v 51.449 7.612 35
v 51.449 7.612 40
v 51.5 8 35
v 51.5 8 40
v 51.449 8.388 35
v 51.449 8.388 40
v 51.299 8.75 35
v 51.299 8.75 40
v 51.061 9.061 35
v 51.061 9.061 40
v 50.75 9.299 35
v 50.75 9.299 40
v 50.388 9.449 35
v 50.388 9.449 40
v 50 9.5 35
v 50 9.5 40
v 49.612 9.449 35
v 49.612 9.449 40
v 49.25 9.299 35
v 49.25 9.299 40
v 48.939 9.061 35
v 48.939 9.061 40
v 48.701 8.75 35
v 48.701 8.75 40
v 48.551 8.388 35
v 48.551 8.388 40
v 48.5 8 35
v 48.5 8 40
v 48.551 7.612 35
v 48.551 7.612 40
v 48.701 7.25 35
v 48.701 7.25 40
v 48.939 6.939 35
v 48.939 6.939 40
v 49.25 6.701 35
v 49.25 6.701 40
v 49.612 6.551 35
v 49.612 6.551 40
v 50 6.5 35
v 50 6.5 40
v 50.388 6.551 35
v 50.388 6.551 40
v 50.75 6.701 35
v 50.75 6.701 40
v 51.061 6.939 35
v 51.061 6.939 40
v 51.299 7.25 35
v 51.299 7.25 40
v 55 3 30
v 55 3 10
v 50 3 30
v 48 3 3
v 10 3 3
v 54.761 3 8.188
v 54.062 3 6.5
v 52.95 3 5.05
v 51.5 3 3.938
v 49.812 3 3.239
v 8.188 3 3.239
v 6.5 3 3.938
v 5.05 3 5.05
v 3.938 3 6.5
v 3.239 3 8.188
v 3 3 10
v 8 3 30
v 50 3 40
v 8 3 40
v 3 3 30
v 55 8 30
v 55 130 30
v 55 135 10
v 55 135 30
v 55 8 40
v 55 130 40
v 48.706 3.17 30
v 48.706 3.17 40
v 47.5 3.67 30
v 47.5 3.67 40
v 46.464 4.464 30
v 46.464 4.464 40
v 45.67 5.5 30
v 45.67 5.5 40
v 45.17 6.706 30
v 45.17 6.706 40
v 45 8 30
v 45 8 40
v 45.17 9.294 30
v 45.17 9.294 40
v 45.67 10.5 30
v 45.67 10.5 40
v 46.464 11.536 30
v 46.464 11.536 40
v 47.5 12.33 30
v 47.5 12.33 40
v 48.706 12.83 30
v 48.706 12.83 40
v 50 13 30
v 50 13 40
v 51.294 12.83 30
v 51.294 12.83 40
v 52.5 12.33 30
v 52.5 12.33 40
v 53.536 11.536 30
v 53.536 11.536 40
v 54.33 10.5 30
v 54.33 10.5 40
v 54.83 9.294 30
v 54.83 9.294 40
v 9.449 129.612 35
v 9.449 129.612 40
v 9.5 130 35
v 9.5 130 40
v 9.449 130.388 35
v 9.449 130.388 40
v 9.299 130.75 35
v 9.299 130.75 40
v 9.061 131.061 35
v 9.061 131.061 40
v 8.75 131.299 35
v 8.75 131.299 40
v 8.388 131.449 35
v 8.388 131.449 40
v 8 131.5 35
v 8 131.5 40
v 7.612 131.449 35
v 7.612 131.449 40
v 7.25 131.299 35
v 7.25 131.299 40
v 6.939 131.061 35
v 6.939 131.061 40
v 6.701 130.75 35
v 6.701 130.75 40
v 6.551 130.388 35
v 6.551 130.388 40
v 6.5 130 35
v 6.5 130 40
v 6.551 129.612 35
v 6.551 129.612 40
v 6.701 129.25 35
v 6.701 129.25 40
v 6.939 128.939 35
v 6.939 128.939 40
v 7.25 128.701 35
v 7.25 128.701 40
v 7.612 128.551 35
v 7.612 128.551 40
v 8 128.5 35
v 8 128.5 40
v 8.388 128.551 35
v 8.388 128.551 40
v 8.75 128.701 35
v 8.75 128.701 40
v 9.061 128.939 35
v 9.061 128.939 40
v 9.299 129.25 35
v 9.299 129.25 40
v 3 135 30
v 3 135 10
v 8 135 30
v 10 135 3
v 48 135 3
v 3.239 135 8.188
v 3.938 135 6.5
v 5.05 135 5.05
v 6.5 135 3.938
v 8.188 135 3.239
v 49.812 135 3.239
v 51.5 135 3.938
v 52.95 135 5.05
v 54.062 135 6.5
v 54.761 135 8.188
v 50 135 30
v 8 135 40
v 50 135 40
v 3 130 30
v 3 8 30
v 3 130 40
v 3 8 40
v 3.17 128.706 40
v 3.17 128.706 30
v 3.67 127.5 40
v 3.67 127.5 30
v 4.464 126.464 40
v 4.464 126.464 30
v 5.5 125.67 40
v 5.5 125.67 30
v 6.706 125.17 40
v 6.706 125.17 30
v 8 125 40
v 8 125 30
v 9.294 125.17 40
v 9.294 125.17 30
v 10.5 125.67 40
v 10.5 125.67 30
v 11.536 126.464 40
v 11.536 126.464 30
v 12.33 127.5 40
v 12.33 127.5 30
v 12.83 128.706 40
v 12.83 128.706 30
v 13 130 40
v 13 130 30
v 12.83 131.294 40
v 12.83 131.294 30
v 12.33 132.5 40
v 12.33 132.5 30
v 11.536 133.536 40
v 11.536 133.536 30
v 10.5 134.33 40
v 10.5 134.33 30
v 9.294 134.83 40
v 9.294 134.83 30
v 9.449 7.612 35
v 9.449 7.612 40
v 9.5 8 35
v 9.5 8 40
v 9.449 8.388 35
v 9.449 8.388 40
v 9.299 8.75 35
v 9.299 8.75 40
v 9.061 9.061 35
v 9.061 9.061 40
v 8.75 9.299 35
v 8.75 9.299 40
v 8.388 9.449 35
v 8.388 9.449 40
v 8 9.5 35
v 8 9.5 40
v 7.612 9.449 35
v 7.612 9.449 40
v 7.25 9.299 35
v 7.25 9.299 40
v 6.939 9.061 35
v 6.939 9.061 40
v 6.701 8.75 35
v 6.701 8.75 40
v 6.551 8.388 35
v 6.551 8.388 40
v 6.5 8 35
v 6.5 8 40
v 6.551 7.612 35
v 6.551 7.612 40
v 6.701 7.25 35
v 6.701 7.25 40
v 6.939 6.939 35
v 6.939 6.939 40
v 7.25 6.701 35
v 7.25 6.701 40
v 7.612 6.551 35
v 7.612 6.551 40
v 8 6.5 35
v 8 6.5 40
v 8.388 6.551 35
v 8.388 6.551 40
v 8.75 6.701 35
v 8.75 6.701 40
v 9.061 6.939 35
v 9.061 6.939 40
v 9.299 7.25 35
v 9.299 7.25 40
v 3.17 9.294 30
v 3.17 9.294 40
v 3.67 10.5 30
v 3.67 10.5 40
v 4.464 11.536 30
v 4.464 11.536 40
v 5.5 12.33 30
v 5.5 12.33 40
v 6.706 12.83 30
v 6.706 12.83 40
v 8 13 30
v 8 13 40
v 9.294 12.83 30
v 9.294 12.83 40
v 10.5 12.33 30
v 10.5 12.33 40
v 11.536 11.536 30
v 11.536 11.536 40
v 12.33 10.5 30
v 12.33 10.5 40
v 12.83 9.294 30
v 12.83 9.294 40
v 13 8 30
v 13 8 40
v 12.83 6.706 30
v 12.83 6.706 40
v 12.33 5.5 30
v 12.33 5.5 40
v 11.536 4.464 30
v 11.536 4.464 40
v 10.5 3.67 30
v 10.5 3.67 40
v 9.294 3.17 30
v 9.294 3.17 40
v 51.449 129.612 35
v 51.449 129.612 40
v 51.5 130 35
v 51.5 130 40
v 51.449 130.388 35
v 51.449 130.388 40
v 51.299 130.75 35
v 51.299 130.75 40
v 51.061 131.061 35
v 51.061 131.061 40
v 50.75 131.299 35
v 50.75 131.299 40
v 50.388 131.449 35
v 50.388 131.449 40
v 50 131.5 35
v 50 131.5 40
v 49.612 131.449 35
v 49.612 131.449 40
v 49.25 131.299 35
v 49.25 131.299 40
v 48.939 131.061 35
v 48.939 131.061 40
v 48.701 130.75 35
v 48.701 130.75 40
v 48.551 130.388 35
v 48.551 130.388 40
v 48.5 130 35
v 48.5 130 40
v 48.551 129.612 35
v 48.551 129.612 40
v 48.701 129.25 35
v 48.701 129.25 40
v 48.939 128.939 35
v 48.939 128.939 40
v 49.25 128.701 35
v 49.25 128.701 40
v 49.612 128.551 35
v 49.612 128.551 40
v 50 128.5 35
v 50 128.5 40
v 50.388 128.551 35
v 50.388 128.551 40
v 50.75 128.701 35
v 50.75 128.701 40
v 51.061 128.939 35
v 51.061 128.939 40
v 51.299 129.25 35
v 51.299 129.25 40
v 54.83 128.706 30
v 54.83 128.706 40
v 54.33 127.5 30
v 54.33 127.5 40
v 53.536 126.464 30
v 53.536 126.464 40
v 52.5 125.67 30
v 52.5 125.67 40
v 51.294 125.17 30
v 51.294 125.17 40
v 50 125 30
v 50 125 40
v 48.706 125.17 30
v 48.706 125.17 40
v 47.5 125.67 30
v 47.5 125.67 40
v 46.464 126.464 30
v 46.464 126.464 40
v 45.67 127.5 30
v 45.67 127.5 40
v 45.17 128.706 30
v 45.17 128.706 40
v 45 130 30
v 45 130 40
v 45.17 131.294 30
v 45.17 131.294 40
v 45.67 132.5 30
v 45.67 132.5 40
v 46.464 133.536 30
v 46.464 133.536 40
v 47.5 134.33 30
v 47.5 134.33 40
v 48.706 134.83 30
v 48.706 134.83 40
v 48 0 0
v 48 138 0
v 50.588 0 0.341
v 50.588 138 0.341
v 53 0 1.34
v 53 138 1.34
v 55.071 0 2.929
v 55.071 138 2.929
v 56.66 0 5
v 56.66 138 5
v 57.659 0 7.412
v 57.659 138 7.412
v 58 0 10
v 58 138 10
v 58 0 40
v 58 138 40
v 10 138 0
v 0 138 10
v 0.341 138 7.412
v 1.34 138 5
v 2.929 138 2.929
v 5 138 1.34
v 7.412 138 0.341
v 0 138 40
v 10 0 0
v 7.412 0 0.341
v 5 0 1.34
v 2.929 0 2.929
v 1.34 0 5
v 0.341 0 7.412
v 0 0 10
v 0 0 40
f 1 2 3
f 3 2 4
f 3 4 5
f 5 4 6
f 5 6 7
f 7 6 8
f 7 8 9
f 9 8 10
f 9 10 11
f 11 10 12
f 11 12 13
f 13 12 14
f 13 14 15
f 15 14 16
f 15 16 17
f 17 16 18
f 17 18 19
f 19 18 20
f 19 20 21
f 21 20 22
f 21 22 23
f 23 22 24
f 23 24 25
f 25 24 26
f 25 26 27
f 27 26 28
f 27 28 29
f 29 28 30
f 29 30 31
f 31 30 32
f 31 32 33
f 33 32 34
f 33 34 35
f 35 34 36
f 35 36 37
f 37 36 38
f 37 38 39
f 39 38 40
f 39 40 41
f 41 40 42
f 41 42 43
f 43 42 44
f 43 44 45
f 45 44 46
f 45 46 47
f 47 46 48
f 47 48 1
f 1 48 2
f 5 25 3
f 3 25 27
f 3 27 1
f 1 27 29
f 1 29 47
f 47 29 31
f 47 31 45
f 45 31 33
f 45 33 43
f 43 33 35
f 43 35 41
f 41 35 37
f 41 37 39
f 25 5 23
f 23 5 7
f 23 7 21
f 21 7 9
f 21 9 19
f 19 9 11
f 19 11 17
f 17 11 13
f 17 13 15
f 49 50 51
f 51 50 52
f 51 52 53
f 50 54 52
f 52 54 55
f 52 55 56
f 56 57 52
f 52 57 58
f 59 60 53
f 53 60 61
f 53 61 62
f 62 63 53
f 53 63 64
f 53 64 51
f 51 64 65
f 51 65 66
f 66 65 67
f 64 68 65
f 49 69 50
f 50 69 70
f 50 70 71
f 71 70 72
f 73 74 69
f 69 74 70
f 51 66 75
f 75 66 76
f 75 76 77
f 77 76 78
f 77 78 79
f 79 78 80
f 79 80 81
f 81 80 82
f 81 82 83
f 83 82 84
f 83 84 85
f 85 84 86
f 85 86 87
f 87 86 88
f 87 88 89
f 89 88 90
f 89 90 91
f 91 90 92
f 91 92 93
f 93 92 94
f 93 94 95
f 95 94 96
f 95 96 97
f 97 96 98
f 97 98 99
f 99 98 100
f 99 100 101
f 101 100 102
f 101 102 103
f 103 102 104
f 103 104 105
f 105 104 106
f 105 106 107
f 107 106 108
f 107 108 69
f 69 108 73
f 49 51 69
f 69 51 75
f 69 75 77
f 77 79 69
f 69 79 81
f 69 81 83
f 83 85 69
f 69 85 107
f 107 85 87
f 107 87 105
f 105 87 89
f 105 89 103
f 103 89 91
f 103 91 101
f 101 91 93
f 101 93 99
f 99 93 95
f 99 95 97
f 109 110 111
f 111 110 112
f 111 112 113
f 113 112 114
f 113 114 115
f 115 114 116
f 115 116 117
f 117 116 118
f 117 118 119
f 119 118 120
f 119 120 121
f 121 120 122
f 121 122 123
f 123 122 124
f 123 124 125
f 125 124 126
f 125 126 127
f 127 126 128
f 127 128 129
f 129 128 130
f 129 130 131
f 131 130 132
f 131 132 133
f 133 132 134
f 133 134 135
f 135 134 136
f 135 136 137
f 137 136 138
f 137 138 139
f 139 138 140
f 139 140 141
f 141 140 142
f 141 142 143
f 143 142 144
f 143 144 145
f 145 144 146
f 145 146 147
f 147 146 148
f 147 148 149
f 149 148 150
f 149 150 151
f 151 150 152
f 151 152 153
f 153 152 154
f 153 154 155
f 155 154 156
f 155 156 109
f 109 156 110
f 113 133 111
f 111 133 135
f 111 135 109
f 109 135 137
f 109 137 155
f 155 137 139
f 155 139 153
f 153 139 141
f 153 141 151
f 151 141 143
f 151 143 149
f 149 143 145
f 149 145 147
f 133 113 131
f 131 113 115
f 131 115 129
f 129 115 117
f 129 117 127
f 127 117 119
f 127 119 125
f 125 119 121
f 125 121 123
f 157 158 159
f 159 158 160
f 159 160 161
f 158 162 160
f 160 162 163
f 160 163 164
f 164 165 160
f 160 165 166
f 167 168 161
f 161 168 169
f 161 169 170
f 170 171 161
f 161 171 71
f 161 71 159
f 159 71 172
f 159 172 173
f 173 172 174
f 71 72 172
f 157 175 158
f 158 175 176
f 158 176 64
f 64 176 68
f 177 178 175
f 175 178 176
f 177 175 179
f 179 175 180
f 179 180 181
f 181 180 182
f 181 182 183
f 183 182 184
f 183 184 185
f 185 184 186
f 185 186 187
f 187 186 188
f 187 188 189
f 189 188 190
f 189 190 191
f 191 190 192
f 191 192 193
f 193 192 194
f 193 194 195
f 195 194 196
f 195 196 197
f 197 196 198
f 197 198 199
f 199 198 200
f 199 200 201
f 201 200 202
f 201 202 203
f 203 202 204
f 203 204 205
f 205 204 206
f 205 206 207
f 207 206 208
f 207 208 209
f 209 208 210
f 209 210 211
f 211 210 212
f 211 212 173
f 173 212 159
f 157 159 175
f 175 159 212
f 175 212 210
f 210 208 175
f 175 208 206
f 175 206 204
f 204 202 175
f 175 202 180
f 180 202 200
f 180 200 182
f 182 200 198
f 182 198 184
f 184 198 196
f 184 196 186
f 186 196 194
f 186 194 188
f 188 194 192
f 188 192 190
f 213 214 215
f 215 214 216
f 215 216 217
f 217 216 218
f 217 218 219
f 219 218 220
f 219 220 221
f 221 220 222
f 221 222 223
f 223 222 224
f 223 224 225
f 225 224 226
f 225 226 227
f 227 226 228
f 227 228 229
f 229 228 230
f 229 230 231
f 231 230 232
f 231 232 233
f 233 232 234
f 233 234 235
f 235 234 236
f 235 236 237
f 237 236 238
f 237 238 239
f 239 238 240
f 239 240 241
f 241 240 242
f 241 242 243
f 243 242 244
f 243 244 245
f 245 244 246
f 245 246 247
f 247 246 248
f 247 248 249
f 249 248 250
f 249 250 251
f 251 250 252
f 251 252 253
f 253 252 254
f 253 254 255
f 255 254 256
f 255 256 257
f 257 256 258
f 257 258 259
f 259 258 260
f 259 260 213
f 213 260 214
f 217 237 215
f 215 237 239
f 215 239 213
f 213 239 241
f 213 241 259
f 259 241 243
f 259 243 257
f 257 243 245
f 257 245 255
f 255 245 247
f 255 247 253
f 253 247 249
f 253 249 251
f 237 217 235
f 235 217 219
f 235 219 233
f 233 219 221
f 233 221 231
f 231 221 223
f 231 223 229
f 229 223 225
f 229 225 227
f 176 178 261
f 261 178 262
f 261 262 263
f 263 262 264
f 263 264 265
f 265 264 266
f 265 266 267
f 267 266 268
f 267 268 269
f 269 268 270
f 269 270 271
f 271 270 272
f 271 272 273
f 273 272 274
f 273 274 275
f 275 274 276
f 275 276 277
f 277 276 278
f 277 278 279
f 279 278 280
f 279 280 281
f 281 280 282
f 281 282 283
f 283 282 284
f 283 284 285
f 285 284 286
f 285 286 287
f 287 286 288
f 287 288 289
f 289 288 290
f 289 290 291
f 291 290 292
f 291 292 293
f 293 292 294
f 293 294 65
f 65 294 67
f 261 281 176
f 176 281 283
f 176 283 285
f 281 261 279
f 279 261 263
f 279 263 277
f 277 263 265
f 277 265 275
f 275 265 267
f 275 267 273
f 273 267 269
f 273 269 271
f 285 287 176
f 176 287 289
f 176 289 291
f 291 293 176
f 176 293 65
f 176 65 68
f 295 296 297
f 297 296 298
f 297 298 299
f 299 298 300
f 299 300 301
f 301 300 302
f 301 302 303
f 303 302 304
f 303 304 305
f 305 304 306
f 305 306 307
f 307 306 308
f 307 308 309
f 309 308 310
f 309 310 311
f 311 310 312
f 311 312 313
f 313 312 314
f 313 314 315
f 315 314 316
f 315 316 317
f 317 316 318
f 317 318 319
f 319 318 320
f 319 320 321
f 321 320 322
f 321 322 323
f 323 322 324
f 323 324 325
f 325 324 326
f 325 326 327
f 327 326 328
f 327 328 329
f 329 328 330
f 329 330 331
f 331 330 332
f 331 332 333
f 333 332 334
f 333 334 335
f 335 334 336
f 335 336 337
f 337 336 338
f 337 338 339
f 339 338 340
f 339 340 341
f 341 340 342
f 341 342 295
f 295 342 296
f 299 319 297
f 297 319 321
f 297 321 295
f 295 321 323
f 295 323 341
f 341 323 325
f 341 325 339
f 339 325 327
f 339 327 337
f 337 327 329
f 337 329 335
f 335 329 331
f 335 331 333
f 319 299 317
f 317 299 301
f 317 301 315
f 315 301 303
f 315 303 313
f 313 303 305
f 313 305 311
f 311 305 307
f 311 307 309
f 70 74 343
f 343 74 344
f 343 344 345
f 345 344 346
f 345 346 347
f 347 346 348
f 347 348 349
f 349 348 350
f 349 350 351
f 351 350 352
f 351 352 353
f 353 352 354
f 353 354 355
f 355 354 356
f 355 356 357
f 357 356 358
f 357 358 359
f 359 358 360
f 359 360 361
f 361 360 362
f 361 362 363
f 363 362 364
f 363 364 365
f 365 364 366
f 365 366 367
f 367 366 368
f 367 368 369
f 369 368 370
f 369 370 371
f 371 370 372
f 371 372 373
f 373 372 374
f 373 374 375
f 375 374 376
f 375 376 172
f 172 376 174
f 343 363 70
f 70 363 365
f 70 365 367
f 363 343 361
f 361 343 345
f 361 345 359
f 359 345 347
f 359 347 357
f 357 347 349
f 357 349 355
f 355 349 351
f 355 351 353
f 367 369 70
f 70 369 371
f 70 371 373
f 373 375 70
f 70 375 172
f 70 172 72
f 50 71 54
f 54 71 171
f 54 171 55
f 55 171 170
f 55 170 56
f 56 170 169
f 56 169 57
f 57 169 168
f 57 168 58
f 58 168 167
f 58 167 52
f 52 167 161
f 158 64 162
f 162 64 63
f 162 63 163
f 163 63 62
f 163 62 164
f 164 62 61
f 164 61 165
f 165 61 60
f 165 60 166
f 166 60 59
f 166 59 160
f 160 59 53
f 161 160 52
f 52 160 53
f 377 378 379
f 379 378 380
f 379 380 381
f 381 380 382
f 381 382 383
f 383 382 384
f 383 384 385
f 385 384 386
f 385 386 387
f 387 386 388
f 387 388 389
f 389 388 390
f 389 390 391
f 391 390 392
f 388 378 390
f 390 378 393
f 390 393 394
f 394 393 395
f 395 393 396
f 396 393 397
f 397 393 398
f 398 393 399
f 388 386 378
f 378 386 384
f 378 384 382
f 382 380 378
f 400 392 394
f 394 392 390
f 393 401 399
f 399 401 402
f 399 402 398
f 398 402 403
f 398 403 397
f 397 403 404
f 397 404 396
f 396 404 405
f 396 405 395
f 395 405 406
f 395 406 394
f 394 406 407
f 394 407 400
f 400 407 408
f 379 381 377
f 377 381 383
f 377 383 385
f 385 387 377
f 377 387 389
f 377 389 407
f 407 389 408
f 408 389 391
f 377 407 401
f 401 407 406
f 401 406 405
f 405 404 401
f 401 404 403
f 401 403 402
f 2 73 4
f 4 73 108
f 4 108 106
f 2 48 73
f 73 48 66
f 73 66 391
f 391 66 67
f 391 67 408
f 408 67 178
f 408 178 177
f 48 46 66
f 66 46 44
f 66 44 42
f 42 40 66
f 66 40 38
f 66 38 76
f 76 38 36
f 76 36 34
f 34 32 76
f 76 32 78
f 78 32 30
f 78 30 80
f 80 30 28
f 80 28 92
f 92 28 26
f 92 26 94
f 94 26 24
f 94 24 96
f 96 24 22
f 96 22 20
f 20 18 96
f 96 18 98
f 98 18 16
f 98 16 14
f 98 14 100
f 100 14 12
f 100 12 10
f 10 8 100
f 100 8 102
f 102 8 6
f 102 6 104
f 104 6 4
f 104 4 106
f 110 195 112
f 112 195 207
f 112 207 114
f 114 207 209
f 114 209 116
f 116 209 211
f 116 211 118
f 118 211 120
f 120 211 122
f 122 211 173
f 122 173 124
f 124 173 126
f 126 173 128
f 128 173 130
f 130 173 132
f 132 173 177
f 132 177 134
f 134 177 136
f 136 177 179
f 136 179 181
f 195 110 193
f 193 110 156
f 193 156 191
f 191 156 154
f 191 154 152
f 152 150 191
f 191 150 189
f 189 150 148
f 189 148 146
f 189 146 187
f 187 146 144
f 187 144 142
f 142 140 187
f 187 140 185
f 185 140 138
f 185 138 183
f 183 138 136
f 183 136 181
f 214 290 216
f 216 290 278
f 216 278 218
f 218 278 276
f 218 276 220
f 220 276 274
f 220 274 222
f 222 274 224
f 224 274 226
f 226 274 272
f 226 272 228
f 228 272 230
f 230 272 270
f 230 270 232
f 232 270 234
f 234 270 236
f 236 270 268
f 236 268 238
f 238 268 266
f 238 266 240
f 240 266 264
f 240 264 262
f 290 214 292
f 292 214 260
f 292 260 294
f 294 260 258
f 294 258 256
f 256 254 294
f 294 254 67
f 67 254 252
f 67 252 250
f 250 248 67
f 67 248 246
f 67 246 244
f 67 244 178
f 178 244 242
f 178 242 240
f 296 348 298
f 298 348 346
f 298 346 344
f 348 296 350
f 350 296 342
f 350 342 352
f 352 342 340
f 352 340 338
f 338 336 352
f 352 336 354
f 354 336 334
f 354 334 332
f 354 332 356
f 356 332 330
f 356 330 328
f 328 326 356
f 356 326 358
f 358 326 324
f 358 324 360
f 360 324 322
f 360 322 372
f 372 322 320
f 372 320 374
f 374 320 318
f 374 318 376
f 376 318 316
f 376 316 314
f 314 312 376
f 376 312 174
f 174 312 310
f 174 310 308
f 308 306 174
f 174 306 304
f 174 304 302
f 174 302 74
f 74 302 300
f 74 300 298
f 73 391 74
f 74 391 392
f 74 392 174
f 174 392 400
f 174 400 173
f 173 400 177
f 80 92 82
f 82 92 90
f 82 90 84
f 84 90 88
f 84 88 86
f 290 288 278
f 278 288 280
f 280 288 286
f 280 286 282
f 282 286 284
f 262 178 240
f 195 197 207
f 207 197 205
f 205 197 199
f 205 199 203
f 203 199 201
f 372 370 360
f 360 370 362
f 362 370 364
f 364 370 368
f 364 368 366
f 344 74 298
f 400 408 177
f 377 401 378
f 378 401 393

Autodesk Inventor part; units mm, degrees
ref_plane "YZ Plane" through (0, 0, 0) normal (1, 0, 0) x (0, 1, 0)
ref_plane "XZ Plane" through (0, 0, 0) normal (0, 1, 0) x (-1, 0, 0)
ref_plane "XY Plane" through (0, 0, 0) normal (0, 0, 1) x (1, 0, 0)
sketch "Sketch1" plane through (0, 0, 0) normal (0, 0, 1) x (1, 0, 0)
  line L0 (0, 0) -> (58, 0)
  line L1 (58, 0) -> (58, 138)
  line L2 (58, 138) -> (0, 138)
  line L3 (0, 138) -> (0, 0)
  dimension "d0" = 58
  dimension "d1" = 138
extrude "Extrusion1" add sketch "Sketch1" along normal blind 40
fillet "Fillet1" radius 10 2 edges at (0, 69, 0) (58, 69, 0)
shell "Shell1" thickness 3 removed faces 1 at (19.3333, 92, 40)
sketch "Sketch2" plane through (0, 0, 40) normal (0, 0, 1) x (1, 0, 0)
  line L0 (55, 135) -> (55, 3) projected
  line L1 (55, 135) -> (55, 130)
  line L2 (55, 130) -> (50, 130)
  circle A0 centre (50, 130) radius 5
  point P0 (0, 0)
  dimension "d6" = 5
  dimension "d7" = 5
extrude "Extrusion3" add sketch "Sketch2" against normal blind 10
sketch "Sketch10" plane through (0, 0, 40) normal (0, 0, 1) x (1, 0, 0)
  line L0 (3, 135) -> (50, 135) projected
  line L1 (48, 135) -> (55, 135) projected
  line L2 (50, 135) -> (55, 135)
  arc A0 (55, 130) -> (50, 135) centre (50, 130) ccw projected
  line L3 (55, 135) -> (50, 135)
  line L4 (55, 135) -> (55, 3) projected
  line L5 (55, 135) -> (55, 130)
  point P0 (0, 0)
extrude "Extrusion4" add sketch "Sketch10" against normal blind 10
sketch "Sketch11" plane through (0, 0, 40) normal (0, 0, 1) x (1, 0, 0)
  arc A0 (55, 130) -> (50, 135) centre (50, 130) ccw projected
  circle A1 centre (50, 130) radius 1.5
  point P0 (0, 0)
  dimension "d14" = 3
extrude "Extrusion5" cut sketch "Sketch11" against normal blind 5
thread "Thread1" size "M3x0.5" class "6H" standard "ANSI Metric M Profile" full length
sketch "Sketch12" plane through (0, 0, 40) normal (0, 0, 1) x (1, 0, 0)
  line L0 (3, 3) -> (3, 135) projected
  line L1 (55, 3) -> (3, 3) projected
  line L2 (3, 3) -> (3, 8)
  line L3 (3, 8) -> (8, 8)
  line L4 (10, 138) -> (10, 0) projected
  circle A0 centre (8, 8) radius 5
  point P0 (0, 0)
  dimension "d20" = 5
  dimension "d21" = 5
extrude "Extrusion6" add sketch "Sketch12" against normal blind 10 contours A0 L4 | A0 L4
sketch "Sketch15" plane through (0, 0, 40) normal (0, 0, 1) x (1, 0, 0)
  line L0 (8, 3) -> (3, 3) projected
  line L1 (3, 3) -> (3, 135) projected
  line L2 (8, 3) -> (3, 3)
  arc A0 (3, 8) -> (8, 3) centre (8, 8) ccw projected
  line L3 (3, 3) -> (8, 3)
  point P0 (0, 0)
extrude "Extrusion7" add sketch "Sketch15" against normal blind 10
sketch "Sketch16" plane through (0, 0, 40) normal (0, 0, 1) x (1, 0, 0)
  arc A0 (8, 3) -> (3, 8) centre (8, 8) ccw projected
  circle A1 centre (8, 8) radius 1.5
  point P0 (0, 0)
  dimension "d26" = 3
extrude "Extrusion8" cut sketch "Sketch16" against normal blind 5
thread "Thread2" size "M3x0.5" class "6H" standard "ANSI Metric M Profile" full length
sketch "Sketch17" plane through (0, 0, 40) normal (0, 0, 1) x (1, 0, 0)
  line L0 (10, 138) -> (10, 0) projected
  line L1 (8, 135) -> (8, 130)
  circle A0 centre (8, 130) radius 5
  point P0 (0, 0)
  point P1 (3, 135)
  dimension "d31" = 5
  dimension "d32" = 5
extrude "Extrusion9" add sketch "Sketch17" against normal blind 10
sketch "Sketch18" plane through (0, 0, 40) normal (0, 0, 1) x (1, 0, 0)
  arc A0 (8, 135) -> (3, 130) centre (8, 130) ccw projected
  line L0 (3, 3) -> (3, 135) projected
  line L1 (8, 135) -> (3, 135)
  line L2 (3, 135) -> (8, 135)
  line L3 (3, 135) -> (10, 135) projected
  point P0 (0, 0)
extrude "Extrusion10" add sketch "Sketch18" against normal blind 10
sketch "Sketch19" plane through (0, 0, 40) normal (0, 0, 1) x (1, 0, 0)
  arc A0 (3, 130) -> (8, 135) centre (8, 130) ccw projected
  circle A1 centre (8, 130) radius 1.5
  point P0 (0, 0)
  dimension "d37" = 3
extrude "Extrusion11" cut sketch "Sketch19" against normal blind 5
thread "Thread3" size "M3x0.5" class "6H" standard "ANSI Metric M Profile" full length
sketch "Sketch21" plane through (0, 0, 40) normal (0, 0, 1) x (1, 0, 0)
  circle A0 centre (50, 8) radius 5
  point P0 (0, 0)
  point P1 (55, 3)
extrude "Extrusion12" add sketch "Sketch21" against normal blind 10
sketch "Sketch23" plane through (0, 0, 40) normal (0, 0, 1) x (1, 0, 0)
  arc A0 (50, 3) -> (55, 8) centre (50, 8) ccw projected
  line L0 (55, 135) -> (55, 3) projected
  line L1 (50, 3) -> (55, 3)
  line L2 (55, 3) -> (50, 3) projected
  line L3 (55, 3) -> (50, 3)
  point P0 (0, 0)
extrude "Extrusion13" add sketch "Sketch23" against normal blind 10
sketch "Sketch24" plane through (0, 0, 40) normal (0, 0, 1) x (1, 0, 0)
  arc A0 (55, 8) -> (50, 3) centre (50, 8) ccw projected
  circle A1 centre (50, 8) radius 1.5
  point P0 (0, 0)
  dimension "d48" = 3
extrude "Extrusion14" cut sketch "Sketch24" against normal blind 5
thread "Thread4" size "M3x0.5" class "6H" standard "ANSI Metric M Profile" full length
sketch "Sketch25" plane through (0, 0, 40) normal (0, 0, 1) x (1, 0, 0)
  point P0 (0, 0)
properties part number "ICE CREAM"
